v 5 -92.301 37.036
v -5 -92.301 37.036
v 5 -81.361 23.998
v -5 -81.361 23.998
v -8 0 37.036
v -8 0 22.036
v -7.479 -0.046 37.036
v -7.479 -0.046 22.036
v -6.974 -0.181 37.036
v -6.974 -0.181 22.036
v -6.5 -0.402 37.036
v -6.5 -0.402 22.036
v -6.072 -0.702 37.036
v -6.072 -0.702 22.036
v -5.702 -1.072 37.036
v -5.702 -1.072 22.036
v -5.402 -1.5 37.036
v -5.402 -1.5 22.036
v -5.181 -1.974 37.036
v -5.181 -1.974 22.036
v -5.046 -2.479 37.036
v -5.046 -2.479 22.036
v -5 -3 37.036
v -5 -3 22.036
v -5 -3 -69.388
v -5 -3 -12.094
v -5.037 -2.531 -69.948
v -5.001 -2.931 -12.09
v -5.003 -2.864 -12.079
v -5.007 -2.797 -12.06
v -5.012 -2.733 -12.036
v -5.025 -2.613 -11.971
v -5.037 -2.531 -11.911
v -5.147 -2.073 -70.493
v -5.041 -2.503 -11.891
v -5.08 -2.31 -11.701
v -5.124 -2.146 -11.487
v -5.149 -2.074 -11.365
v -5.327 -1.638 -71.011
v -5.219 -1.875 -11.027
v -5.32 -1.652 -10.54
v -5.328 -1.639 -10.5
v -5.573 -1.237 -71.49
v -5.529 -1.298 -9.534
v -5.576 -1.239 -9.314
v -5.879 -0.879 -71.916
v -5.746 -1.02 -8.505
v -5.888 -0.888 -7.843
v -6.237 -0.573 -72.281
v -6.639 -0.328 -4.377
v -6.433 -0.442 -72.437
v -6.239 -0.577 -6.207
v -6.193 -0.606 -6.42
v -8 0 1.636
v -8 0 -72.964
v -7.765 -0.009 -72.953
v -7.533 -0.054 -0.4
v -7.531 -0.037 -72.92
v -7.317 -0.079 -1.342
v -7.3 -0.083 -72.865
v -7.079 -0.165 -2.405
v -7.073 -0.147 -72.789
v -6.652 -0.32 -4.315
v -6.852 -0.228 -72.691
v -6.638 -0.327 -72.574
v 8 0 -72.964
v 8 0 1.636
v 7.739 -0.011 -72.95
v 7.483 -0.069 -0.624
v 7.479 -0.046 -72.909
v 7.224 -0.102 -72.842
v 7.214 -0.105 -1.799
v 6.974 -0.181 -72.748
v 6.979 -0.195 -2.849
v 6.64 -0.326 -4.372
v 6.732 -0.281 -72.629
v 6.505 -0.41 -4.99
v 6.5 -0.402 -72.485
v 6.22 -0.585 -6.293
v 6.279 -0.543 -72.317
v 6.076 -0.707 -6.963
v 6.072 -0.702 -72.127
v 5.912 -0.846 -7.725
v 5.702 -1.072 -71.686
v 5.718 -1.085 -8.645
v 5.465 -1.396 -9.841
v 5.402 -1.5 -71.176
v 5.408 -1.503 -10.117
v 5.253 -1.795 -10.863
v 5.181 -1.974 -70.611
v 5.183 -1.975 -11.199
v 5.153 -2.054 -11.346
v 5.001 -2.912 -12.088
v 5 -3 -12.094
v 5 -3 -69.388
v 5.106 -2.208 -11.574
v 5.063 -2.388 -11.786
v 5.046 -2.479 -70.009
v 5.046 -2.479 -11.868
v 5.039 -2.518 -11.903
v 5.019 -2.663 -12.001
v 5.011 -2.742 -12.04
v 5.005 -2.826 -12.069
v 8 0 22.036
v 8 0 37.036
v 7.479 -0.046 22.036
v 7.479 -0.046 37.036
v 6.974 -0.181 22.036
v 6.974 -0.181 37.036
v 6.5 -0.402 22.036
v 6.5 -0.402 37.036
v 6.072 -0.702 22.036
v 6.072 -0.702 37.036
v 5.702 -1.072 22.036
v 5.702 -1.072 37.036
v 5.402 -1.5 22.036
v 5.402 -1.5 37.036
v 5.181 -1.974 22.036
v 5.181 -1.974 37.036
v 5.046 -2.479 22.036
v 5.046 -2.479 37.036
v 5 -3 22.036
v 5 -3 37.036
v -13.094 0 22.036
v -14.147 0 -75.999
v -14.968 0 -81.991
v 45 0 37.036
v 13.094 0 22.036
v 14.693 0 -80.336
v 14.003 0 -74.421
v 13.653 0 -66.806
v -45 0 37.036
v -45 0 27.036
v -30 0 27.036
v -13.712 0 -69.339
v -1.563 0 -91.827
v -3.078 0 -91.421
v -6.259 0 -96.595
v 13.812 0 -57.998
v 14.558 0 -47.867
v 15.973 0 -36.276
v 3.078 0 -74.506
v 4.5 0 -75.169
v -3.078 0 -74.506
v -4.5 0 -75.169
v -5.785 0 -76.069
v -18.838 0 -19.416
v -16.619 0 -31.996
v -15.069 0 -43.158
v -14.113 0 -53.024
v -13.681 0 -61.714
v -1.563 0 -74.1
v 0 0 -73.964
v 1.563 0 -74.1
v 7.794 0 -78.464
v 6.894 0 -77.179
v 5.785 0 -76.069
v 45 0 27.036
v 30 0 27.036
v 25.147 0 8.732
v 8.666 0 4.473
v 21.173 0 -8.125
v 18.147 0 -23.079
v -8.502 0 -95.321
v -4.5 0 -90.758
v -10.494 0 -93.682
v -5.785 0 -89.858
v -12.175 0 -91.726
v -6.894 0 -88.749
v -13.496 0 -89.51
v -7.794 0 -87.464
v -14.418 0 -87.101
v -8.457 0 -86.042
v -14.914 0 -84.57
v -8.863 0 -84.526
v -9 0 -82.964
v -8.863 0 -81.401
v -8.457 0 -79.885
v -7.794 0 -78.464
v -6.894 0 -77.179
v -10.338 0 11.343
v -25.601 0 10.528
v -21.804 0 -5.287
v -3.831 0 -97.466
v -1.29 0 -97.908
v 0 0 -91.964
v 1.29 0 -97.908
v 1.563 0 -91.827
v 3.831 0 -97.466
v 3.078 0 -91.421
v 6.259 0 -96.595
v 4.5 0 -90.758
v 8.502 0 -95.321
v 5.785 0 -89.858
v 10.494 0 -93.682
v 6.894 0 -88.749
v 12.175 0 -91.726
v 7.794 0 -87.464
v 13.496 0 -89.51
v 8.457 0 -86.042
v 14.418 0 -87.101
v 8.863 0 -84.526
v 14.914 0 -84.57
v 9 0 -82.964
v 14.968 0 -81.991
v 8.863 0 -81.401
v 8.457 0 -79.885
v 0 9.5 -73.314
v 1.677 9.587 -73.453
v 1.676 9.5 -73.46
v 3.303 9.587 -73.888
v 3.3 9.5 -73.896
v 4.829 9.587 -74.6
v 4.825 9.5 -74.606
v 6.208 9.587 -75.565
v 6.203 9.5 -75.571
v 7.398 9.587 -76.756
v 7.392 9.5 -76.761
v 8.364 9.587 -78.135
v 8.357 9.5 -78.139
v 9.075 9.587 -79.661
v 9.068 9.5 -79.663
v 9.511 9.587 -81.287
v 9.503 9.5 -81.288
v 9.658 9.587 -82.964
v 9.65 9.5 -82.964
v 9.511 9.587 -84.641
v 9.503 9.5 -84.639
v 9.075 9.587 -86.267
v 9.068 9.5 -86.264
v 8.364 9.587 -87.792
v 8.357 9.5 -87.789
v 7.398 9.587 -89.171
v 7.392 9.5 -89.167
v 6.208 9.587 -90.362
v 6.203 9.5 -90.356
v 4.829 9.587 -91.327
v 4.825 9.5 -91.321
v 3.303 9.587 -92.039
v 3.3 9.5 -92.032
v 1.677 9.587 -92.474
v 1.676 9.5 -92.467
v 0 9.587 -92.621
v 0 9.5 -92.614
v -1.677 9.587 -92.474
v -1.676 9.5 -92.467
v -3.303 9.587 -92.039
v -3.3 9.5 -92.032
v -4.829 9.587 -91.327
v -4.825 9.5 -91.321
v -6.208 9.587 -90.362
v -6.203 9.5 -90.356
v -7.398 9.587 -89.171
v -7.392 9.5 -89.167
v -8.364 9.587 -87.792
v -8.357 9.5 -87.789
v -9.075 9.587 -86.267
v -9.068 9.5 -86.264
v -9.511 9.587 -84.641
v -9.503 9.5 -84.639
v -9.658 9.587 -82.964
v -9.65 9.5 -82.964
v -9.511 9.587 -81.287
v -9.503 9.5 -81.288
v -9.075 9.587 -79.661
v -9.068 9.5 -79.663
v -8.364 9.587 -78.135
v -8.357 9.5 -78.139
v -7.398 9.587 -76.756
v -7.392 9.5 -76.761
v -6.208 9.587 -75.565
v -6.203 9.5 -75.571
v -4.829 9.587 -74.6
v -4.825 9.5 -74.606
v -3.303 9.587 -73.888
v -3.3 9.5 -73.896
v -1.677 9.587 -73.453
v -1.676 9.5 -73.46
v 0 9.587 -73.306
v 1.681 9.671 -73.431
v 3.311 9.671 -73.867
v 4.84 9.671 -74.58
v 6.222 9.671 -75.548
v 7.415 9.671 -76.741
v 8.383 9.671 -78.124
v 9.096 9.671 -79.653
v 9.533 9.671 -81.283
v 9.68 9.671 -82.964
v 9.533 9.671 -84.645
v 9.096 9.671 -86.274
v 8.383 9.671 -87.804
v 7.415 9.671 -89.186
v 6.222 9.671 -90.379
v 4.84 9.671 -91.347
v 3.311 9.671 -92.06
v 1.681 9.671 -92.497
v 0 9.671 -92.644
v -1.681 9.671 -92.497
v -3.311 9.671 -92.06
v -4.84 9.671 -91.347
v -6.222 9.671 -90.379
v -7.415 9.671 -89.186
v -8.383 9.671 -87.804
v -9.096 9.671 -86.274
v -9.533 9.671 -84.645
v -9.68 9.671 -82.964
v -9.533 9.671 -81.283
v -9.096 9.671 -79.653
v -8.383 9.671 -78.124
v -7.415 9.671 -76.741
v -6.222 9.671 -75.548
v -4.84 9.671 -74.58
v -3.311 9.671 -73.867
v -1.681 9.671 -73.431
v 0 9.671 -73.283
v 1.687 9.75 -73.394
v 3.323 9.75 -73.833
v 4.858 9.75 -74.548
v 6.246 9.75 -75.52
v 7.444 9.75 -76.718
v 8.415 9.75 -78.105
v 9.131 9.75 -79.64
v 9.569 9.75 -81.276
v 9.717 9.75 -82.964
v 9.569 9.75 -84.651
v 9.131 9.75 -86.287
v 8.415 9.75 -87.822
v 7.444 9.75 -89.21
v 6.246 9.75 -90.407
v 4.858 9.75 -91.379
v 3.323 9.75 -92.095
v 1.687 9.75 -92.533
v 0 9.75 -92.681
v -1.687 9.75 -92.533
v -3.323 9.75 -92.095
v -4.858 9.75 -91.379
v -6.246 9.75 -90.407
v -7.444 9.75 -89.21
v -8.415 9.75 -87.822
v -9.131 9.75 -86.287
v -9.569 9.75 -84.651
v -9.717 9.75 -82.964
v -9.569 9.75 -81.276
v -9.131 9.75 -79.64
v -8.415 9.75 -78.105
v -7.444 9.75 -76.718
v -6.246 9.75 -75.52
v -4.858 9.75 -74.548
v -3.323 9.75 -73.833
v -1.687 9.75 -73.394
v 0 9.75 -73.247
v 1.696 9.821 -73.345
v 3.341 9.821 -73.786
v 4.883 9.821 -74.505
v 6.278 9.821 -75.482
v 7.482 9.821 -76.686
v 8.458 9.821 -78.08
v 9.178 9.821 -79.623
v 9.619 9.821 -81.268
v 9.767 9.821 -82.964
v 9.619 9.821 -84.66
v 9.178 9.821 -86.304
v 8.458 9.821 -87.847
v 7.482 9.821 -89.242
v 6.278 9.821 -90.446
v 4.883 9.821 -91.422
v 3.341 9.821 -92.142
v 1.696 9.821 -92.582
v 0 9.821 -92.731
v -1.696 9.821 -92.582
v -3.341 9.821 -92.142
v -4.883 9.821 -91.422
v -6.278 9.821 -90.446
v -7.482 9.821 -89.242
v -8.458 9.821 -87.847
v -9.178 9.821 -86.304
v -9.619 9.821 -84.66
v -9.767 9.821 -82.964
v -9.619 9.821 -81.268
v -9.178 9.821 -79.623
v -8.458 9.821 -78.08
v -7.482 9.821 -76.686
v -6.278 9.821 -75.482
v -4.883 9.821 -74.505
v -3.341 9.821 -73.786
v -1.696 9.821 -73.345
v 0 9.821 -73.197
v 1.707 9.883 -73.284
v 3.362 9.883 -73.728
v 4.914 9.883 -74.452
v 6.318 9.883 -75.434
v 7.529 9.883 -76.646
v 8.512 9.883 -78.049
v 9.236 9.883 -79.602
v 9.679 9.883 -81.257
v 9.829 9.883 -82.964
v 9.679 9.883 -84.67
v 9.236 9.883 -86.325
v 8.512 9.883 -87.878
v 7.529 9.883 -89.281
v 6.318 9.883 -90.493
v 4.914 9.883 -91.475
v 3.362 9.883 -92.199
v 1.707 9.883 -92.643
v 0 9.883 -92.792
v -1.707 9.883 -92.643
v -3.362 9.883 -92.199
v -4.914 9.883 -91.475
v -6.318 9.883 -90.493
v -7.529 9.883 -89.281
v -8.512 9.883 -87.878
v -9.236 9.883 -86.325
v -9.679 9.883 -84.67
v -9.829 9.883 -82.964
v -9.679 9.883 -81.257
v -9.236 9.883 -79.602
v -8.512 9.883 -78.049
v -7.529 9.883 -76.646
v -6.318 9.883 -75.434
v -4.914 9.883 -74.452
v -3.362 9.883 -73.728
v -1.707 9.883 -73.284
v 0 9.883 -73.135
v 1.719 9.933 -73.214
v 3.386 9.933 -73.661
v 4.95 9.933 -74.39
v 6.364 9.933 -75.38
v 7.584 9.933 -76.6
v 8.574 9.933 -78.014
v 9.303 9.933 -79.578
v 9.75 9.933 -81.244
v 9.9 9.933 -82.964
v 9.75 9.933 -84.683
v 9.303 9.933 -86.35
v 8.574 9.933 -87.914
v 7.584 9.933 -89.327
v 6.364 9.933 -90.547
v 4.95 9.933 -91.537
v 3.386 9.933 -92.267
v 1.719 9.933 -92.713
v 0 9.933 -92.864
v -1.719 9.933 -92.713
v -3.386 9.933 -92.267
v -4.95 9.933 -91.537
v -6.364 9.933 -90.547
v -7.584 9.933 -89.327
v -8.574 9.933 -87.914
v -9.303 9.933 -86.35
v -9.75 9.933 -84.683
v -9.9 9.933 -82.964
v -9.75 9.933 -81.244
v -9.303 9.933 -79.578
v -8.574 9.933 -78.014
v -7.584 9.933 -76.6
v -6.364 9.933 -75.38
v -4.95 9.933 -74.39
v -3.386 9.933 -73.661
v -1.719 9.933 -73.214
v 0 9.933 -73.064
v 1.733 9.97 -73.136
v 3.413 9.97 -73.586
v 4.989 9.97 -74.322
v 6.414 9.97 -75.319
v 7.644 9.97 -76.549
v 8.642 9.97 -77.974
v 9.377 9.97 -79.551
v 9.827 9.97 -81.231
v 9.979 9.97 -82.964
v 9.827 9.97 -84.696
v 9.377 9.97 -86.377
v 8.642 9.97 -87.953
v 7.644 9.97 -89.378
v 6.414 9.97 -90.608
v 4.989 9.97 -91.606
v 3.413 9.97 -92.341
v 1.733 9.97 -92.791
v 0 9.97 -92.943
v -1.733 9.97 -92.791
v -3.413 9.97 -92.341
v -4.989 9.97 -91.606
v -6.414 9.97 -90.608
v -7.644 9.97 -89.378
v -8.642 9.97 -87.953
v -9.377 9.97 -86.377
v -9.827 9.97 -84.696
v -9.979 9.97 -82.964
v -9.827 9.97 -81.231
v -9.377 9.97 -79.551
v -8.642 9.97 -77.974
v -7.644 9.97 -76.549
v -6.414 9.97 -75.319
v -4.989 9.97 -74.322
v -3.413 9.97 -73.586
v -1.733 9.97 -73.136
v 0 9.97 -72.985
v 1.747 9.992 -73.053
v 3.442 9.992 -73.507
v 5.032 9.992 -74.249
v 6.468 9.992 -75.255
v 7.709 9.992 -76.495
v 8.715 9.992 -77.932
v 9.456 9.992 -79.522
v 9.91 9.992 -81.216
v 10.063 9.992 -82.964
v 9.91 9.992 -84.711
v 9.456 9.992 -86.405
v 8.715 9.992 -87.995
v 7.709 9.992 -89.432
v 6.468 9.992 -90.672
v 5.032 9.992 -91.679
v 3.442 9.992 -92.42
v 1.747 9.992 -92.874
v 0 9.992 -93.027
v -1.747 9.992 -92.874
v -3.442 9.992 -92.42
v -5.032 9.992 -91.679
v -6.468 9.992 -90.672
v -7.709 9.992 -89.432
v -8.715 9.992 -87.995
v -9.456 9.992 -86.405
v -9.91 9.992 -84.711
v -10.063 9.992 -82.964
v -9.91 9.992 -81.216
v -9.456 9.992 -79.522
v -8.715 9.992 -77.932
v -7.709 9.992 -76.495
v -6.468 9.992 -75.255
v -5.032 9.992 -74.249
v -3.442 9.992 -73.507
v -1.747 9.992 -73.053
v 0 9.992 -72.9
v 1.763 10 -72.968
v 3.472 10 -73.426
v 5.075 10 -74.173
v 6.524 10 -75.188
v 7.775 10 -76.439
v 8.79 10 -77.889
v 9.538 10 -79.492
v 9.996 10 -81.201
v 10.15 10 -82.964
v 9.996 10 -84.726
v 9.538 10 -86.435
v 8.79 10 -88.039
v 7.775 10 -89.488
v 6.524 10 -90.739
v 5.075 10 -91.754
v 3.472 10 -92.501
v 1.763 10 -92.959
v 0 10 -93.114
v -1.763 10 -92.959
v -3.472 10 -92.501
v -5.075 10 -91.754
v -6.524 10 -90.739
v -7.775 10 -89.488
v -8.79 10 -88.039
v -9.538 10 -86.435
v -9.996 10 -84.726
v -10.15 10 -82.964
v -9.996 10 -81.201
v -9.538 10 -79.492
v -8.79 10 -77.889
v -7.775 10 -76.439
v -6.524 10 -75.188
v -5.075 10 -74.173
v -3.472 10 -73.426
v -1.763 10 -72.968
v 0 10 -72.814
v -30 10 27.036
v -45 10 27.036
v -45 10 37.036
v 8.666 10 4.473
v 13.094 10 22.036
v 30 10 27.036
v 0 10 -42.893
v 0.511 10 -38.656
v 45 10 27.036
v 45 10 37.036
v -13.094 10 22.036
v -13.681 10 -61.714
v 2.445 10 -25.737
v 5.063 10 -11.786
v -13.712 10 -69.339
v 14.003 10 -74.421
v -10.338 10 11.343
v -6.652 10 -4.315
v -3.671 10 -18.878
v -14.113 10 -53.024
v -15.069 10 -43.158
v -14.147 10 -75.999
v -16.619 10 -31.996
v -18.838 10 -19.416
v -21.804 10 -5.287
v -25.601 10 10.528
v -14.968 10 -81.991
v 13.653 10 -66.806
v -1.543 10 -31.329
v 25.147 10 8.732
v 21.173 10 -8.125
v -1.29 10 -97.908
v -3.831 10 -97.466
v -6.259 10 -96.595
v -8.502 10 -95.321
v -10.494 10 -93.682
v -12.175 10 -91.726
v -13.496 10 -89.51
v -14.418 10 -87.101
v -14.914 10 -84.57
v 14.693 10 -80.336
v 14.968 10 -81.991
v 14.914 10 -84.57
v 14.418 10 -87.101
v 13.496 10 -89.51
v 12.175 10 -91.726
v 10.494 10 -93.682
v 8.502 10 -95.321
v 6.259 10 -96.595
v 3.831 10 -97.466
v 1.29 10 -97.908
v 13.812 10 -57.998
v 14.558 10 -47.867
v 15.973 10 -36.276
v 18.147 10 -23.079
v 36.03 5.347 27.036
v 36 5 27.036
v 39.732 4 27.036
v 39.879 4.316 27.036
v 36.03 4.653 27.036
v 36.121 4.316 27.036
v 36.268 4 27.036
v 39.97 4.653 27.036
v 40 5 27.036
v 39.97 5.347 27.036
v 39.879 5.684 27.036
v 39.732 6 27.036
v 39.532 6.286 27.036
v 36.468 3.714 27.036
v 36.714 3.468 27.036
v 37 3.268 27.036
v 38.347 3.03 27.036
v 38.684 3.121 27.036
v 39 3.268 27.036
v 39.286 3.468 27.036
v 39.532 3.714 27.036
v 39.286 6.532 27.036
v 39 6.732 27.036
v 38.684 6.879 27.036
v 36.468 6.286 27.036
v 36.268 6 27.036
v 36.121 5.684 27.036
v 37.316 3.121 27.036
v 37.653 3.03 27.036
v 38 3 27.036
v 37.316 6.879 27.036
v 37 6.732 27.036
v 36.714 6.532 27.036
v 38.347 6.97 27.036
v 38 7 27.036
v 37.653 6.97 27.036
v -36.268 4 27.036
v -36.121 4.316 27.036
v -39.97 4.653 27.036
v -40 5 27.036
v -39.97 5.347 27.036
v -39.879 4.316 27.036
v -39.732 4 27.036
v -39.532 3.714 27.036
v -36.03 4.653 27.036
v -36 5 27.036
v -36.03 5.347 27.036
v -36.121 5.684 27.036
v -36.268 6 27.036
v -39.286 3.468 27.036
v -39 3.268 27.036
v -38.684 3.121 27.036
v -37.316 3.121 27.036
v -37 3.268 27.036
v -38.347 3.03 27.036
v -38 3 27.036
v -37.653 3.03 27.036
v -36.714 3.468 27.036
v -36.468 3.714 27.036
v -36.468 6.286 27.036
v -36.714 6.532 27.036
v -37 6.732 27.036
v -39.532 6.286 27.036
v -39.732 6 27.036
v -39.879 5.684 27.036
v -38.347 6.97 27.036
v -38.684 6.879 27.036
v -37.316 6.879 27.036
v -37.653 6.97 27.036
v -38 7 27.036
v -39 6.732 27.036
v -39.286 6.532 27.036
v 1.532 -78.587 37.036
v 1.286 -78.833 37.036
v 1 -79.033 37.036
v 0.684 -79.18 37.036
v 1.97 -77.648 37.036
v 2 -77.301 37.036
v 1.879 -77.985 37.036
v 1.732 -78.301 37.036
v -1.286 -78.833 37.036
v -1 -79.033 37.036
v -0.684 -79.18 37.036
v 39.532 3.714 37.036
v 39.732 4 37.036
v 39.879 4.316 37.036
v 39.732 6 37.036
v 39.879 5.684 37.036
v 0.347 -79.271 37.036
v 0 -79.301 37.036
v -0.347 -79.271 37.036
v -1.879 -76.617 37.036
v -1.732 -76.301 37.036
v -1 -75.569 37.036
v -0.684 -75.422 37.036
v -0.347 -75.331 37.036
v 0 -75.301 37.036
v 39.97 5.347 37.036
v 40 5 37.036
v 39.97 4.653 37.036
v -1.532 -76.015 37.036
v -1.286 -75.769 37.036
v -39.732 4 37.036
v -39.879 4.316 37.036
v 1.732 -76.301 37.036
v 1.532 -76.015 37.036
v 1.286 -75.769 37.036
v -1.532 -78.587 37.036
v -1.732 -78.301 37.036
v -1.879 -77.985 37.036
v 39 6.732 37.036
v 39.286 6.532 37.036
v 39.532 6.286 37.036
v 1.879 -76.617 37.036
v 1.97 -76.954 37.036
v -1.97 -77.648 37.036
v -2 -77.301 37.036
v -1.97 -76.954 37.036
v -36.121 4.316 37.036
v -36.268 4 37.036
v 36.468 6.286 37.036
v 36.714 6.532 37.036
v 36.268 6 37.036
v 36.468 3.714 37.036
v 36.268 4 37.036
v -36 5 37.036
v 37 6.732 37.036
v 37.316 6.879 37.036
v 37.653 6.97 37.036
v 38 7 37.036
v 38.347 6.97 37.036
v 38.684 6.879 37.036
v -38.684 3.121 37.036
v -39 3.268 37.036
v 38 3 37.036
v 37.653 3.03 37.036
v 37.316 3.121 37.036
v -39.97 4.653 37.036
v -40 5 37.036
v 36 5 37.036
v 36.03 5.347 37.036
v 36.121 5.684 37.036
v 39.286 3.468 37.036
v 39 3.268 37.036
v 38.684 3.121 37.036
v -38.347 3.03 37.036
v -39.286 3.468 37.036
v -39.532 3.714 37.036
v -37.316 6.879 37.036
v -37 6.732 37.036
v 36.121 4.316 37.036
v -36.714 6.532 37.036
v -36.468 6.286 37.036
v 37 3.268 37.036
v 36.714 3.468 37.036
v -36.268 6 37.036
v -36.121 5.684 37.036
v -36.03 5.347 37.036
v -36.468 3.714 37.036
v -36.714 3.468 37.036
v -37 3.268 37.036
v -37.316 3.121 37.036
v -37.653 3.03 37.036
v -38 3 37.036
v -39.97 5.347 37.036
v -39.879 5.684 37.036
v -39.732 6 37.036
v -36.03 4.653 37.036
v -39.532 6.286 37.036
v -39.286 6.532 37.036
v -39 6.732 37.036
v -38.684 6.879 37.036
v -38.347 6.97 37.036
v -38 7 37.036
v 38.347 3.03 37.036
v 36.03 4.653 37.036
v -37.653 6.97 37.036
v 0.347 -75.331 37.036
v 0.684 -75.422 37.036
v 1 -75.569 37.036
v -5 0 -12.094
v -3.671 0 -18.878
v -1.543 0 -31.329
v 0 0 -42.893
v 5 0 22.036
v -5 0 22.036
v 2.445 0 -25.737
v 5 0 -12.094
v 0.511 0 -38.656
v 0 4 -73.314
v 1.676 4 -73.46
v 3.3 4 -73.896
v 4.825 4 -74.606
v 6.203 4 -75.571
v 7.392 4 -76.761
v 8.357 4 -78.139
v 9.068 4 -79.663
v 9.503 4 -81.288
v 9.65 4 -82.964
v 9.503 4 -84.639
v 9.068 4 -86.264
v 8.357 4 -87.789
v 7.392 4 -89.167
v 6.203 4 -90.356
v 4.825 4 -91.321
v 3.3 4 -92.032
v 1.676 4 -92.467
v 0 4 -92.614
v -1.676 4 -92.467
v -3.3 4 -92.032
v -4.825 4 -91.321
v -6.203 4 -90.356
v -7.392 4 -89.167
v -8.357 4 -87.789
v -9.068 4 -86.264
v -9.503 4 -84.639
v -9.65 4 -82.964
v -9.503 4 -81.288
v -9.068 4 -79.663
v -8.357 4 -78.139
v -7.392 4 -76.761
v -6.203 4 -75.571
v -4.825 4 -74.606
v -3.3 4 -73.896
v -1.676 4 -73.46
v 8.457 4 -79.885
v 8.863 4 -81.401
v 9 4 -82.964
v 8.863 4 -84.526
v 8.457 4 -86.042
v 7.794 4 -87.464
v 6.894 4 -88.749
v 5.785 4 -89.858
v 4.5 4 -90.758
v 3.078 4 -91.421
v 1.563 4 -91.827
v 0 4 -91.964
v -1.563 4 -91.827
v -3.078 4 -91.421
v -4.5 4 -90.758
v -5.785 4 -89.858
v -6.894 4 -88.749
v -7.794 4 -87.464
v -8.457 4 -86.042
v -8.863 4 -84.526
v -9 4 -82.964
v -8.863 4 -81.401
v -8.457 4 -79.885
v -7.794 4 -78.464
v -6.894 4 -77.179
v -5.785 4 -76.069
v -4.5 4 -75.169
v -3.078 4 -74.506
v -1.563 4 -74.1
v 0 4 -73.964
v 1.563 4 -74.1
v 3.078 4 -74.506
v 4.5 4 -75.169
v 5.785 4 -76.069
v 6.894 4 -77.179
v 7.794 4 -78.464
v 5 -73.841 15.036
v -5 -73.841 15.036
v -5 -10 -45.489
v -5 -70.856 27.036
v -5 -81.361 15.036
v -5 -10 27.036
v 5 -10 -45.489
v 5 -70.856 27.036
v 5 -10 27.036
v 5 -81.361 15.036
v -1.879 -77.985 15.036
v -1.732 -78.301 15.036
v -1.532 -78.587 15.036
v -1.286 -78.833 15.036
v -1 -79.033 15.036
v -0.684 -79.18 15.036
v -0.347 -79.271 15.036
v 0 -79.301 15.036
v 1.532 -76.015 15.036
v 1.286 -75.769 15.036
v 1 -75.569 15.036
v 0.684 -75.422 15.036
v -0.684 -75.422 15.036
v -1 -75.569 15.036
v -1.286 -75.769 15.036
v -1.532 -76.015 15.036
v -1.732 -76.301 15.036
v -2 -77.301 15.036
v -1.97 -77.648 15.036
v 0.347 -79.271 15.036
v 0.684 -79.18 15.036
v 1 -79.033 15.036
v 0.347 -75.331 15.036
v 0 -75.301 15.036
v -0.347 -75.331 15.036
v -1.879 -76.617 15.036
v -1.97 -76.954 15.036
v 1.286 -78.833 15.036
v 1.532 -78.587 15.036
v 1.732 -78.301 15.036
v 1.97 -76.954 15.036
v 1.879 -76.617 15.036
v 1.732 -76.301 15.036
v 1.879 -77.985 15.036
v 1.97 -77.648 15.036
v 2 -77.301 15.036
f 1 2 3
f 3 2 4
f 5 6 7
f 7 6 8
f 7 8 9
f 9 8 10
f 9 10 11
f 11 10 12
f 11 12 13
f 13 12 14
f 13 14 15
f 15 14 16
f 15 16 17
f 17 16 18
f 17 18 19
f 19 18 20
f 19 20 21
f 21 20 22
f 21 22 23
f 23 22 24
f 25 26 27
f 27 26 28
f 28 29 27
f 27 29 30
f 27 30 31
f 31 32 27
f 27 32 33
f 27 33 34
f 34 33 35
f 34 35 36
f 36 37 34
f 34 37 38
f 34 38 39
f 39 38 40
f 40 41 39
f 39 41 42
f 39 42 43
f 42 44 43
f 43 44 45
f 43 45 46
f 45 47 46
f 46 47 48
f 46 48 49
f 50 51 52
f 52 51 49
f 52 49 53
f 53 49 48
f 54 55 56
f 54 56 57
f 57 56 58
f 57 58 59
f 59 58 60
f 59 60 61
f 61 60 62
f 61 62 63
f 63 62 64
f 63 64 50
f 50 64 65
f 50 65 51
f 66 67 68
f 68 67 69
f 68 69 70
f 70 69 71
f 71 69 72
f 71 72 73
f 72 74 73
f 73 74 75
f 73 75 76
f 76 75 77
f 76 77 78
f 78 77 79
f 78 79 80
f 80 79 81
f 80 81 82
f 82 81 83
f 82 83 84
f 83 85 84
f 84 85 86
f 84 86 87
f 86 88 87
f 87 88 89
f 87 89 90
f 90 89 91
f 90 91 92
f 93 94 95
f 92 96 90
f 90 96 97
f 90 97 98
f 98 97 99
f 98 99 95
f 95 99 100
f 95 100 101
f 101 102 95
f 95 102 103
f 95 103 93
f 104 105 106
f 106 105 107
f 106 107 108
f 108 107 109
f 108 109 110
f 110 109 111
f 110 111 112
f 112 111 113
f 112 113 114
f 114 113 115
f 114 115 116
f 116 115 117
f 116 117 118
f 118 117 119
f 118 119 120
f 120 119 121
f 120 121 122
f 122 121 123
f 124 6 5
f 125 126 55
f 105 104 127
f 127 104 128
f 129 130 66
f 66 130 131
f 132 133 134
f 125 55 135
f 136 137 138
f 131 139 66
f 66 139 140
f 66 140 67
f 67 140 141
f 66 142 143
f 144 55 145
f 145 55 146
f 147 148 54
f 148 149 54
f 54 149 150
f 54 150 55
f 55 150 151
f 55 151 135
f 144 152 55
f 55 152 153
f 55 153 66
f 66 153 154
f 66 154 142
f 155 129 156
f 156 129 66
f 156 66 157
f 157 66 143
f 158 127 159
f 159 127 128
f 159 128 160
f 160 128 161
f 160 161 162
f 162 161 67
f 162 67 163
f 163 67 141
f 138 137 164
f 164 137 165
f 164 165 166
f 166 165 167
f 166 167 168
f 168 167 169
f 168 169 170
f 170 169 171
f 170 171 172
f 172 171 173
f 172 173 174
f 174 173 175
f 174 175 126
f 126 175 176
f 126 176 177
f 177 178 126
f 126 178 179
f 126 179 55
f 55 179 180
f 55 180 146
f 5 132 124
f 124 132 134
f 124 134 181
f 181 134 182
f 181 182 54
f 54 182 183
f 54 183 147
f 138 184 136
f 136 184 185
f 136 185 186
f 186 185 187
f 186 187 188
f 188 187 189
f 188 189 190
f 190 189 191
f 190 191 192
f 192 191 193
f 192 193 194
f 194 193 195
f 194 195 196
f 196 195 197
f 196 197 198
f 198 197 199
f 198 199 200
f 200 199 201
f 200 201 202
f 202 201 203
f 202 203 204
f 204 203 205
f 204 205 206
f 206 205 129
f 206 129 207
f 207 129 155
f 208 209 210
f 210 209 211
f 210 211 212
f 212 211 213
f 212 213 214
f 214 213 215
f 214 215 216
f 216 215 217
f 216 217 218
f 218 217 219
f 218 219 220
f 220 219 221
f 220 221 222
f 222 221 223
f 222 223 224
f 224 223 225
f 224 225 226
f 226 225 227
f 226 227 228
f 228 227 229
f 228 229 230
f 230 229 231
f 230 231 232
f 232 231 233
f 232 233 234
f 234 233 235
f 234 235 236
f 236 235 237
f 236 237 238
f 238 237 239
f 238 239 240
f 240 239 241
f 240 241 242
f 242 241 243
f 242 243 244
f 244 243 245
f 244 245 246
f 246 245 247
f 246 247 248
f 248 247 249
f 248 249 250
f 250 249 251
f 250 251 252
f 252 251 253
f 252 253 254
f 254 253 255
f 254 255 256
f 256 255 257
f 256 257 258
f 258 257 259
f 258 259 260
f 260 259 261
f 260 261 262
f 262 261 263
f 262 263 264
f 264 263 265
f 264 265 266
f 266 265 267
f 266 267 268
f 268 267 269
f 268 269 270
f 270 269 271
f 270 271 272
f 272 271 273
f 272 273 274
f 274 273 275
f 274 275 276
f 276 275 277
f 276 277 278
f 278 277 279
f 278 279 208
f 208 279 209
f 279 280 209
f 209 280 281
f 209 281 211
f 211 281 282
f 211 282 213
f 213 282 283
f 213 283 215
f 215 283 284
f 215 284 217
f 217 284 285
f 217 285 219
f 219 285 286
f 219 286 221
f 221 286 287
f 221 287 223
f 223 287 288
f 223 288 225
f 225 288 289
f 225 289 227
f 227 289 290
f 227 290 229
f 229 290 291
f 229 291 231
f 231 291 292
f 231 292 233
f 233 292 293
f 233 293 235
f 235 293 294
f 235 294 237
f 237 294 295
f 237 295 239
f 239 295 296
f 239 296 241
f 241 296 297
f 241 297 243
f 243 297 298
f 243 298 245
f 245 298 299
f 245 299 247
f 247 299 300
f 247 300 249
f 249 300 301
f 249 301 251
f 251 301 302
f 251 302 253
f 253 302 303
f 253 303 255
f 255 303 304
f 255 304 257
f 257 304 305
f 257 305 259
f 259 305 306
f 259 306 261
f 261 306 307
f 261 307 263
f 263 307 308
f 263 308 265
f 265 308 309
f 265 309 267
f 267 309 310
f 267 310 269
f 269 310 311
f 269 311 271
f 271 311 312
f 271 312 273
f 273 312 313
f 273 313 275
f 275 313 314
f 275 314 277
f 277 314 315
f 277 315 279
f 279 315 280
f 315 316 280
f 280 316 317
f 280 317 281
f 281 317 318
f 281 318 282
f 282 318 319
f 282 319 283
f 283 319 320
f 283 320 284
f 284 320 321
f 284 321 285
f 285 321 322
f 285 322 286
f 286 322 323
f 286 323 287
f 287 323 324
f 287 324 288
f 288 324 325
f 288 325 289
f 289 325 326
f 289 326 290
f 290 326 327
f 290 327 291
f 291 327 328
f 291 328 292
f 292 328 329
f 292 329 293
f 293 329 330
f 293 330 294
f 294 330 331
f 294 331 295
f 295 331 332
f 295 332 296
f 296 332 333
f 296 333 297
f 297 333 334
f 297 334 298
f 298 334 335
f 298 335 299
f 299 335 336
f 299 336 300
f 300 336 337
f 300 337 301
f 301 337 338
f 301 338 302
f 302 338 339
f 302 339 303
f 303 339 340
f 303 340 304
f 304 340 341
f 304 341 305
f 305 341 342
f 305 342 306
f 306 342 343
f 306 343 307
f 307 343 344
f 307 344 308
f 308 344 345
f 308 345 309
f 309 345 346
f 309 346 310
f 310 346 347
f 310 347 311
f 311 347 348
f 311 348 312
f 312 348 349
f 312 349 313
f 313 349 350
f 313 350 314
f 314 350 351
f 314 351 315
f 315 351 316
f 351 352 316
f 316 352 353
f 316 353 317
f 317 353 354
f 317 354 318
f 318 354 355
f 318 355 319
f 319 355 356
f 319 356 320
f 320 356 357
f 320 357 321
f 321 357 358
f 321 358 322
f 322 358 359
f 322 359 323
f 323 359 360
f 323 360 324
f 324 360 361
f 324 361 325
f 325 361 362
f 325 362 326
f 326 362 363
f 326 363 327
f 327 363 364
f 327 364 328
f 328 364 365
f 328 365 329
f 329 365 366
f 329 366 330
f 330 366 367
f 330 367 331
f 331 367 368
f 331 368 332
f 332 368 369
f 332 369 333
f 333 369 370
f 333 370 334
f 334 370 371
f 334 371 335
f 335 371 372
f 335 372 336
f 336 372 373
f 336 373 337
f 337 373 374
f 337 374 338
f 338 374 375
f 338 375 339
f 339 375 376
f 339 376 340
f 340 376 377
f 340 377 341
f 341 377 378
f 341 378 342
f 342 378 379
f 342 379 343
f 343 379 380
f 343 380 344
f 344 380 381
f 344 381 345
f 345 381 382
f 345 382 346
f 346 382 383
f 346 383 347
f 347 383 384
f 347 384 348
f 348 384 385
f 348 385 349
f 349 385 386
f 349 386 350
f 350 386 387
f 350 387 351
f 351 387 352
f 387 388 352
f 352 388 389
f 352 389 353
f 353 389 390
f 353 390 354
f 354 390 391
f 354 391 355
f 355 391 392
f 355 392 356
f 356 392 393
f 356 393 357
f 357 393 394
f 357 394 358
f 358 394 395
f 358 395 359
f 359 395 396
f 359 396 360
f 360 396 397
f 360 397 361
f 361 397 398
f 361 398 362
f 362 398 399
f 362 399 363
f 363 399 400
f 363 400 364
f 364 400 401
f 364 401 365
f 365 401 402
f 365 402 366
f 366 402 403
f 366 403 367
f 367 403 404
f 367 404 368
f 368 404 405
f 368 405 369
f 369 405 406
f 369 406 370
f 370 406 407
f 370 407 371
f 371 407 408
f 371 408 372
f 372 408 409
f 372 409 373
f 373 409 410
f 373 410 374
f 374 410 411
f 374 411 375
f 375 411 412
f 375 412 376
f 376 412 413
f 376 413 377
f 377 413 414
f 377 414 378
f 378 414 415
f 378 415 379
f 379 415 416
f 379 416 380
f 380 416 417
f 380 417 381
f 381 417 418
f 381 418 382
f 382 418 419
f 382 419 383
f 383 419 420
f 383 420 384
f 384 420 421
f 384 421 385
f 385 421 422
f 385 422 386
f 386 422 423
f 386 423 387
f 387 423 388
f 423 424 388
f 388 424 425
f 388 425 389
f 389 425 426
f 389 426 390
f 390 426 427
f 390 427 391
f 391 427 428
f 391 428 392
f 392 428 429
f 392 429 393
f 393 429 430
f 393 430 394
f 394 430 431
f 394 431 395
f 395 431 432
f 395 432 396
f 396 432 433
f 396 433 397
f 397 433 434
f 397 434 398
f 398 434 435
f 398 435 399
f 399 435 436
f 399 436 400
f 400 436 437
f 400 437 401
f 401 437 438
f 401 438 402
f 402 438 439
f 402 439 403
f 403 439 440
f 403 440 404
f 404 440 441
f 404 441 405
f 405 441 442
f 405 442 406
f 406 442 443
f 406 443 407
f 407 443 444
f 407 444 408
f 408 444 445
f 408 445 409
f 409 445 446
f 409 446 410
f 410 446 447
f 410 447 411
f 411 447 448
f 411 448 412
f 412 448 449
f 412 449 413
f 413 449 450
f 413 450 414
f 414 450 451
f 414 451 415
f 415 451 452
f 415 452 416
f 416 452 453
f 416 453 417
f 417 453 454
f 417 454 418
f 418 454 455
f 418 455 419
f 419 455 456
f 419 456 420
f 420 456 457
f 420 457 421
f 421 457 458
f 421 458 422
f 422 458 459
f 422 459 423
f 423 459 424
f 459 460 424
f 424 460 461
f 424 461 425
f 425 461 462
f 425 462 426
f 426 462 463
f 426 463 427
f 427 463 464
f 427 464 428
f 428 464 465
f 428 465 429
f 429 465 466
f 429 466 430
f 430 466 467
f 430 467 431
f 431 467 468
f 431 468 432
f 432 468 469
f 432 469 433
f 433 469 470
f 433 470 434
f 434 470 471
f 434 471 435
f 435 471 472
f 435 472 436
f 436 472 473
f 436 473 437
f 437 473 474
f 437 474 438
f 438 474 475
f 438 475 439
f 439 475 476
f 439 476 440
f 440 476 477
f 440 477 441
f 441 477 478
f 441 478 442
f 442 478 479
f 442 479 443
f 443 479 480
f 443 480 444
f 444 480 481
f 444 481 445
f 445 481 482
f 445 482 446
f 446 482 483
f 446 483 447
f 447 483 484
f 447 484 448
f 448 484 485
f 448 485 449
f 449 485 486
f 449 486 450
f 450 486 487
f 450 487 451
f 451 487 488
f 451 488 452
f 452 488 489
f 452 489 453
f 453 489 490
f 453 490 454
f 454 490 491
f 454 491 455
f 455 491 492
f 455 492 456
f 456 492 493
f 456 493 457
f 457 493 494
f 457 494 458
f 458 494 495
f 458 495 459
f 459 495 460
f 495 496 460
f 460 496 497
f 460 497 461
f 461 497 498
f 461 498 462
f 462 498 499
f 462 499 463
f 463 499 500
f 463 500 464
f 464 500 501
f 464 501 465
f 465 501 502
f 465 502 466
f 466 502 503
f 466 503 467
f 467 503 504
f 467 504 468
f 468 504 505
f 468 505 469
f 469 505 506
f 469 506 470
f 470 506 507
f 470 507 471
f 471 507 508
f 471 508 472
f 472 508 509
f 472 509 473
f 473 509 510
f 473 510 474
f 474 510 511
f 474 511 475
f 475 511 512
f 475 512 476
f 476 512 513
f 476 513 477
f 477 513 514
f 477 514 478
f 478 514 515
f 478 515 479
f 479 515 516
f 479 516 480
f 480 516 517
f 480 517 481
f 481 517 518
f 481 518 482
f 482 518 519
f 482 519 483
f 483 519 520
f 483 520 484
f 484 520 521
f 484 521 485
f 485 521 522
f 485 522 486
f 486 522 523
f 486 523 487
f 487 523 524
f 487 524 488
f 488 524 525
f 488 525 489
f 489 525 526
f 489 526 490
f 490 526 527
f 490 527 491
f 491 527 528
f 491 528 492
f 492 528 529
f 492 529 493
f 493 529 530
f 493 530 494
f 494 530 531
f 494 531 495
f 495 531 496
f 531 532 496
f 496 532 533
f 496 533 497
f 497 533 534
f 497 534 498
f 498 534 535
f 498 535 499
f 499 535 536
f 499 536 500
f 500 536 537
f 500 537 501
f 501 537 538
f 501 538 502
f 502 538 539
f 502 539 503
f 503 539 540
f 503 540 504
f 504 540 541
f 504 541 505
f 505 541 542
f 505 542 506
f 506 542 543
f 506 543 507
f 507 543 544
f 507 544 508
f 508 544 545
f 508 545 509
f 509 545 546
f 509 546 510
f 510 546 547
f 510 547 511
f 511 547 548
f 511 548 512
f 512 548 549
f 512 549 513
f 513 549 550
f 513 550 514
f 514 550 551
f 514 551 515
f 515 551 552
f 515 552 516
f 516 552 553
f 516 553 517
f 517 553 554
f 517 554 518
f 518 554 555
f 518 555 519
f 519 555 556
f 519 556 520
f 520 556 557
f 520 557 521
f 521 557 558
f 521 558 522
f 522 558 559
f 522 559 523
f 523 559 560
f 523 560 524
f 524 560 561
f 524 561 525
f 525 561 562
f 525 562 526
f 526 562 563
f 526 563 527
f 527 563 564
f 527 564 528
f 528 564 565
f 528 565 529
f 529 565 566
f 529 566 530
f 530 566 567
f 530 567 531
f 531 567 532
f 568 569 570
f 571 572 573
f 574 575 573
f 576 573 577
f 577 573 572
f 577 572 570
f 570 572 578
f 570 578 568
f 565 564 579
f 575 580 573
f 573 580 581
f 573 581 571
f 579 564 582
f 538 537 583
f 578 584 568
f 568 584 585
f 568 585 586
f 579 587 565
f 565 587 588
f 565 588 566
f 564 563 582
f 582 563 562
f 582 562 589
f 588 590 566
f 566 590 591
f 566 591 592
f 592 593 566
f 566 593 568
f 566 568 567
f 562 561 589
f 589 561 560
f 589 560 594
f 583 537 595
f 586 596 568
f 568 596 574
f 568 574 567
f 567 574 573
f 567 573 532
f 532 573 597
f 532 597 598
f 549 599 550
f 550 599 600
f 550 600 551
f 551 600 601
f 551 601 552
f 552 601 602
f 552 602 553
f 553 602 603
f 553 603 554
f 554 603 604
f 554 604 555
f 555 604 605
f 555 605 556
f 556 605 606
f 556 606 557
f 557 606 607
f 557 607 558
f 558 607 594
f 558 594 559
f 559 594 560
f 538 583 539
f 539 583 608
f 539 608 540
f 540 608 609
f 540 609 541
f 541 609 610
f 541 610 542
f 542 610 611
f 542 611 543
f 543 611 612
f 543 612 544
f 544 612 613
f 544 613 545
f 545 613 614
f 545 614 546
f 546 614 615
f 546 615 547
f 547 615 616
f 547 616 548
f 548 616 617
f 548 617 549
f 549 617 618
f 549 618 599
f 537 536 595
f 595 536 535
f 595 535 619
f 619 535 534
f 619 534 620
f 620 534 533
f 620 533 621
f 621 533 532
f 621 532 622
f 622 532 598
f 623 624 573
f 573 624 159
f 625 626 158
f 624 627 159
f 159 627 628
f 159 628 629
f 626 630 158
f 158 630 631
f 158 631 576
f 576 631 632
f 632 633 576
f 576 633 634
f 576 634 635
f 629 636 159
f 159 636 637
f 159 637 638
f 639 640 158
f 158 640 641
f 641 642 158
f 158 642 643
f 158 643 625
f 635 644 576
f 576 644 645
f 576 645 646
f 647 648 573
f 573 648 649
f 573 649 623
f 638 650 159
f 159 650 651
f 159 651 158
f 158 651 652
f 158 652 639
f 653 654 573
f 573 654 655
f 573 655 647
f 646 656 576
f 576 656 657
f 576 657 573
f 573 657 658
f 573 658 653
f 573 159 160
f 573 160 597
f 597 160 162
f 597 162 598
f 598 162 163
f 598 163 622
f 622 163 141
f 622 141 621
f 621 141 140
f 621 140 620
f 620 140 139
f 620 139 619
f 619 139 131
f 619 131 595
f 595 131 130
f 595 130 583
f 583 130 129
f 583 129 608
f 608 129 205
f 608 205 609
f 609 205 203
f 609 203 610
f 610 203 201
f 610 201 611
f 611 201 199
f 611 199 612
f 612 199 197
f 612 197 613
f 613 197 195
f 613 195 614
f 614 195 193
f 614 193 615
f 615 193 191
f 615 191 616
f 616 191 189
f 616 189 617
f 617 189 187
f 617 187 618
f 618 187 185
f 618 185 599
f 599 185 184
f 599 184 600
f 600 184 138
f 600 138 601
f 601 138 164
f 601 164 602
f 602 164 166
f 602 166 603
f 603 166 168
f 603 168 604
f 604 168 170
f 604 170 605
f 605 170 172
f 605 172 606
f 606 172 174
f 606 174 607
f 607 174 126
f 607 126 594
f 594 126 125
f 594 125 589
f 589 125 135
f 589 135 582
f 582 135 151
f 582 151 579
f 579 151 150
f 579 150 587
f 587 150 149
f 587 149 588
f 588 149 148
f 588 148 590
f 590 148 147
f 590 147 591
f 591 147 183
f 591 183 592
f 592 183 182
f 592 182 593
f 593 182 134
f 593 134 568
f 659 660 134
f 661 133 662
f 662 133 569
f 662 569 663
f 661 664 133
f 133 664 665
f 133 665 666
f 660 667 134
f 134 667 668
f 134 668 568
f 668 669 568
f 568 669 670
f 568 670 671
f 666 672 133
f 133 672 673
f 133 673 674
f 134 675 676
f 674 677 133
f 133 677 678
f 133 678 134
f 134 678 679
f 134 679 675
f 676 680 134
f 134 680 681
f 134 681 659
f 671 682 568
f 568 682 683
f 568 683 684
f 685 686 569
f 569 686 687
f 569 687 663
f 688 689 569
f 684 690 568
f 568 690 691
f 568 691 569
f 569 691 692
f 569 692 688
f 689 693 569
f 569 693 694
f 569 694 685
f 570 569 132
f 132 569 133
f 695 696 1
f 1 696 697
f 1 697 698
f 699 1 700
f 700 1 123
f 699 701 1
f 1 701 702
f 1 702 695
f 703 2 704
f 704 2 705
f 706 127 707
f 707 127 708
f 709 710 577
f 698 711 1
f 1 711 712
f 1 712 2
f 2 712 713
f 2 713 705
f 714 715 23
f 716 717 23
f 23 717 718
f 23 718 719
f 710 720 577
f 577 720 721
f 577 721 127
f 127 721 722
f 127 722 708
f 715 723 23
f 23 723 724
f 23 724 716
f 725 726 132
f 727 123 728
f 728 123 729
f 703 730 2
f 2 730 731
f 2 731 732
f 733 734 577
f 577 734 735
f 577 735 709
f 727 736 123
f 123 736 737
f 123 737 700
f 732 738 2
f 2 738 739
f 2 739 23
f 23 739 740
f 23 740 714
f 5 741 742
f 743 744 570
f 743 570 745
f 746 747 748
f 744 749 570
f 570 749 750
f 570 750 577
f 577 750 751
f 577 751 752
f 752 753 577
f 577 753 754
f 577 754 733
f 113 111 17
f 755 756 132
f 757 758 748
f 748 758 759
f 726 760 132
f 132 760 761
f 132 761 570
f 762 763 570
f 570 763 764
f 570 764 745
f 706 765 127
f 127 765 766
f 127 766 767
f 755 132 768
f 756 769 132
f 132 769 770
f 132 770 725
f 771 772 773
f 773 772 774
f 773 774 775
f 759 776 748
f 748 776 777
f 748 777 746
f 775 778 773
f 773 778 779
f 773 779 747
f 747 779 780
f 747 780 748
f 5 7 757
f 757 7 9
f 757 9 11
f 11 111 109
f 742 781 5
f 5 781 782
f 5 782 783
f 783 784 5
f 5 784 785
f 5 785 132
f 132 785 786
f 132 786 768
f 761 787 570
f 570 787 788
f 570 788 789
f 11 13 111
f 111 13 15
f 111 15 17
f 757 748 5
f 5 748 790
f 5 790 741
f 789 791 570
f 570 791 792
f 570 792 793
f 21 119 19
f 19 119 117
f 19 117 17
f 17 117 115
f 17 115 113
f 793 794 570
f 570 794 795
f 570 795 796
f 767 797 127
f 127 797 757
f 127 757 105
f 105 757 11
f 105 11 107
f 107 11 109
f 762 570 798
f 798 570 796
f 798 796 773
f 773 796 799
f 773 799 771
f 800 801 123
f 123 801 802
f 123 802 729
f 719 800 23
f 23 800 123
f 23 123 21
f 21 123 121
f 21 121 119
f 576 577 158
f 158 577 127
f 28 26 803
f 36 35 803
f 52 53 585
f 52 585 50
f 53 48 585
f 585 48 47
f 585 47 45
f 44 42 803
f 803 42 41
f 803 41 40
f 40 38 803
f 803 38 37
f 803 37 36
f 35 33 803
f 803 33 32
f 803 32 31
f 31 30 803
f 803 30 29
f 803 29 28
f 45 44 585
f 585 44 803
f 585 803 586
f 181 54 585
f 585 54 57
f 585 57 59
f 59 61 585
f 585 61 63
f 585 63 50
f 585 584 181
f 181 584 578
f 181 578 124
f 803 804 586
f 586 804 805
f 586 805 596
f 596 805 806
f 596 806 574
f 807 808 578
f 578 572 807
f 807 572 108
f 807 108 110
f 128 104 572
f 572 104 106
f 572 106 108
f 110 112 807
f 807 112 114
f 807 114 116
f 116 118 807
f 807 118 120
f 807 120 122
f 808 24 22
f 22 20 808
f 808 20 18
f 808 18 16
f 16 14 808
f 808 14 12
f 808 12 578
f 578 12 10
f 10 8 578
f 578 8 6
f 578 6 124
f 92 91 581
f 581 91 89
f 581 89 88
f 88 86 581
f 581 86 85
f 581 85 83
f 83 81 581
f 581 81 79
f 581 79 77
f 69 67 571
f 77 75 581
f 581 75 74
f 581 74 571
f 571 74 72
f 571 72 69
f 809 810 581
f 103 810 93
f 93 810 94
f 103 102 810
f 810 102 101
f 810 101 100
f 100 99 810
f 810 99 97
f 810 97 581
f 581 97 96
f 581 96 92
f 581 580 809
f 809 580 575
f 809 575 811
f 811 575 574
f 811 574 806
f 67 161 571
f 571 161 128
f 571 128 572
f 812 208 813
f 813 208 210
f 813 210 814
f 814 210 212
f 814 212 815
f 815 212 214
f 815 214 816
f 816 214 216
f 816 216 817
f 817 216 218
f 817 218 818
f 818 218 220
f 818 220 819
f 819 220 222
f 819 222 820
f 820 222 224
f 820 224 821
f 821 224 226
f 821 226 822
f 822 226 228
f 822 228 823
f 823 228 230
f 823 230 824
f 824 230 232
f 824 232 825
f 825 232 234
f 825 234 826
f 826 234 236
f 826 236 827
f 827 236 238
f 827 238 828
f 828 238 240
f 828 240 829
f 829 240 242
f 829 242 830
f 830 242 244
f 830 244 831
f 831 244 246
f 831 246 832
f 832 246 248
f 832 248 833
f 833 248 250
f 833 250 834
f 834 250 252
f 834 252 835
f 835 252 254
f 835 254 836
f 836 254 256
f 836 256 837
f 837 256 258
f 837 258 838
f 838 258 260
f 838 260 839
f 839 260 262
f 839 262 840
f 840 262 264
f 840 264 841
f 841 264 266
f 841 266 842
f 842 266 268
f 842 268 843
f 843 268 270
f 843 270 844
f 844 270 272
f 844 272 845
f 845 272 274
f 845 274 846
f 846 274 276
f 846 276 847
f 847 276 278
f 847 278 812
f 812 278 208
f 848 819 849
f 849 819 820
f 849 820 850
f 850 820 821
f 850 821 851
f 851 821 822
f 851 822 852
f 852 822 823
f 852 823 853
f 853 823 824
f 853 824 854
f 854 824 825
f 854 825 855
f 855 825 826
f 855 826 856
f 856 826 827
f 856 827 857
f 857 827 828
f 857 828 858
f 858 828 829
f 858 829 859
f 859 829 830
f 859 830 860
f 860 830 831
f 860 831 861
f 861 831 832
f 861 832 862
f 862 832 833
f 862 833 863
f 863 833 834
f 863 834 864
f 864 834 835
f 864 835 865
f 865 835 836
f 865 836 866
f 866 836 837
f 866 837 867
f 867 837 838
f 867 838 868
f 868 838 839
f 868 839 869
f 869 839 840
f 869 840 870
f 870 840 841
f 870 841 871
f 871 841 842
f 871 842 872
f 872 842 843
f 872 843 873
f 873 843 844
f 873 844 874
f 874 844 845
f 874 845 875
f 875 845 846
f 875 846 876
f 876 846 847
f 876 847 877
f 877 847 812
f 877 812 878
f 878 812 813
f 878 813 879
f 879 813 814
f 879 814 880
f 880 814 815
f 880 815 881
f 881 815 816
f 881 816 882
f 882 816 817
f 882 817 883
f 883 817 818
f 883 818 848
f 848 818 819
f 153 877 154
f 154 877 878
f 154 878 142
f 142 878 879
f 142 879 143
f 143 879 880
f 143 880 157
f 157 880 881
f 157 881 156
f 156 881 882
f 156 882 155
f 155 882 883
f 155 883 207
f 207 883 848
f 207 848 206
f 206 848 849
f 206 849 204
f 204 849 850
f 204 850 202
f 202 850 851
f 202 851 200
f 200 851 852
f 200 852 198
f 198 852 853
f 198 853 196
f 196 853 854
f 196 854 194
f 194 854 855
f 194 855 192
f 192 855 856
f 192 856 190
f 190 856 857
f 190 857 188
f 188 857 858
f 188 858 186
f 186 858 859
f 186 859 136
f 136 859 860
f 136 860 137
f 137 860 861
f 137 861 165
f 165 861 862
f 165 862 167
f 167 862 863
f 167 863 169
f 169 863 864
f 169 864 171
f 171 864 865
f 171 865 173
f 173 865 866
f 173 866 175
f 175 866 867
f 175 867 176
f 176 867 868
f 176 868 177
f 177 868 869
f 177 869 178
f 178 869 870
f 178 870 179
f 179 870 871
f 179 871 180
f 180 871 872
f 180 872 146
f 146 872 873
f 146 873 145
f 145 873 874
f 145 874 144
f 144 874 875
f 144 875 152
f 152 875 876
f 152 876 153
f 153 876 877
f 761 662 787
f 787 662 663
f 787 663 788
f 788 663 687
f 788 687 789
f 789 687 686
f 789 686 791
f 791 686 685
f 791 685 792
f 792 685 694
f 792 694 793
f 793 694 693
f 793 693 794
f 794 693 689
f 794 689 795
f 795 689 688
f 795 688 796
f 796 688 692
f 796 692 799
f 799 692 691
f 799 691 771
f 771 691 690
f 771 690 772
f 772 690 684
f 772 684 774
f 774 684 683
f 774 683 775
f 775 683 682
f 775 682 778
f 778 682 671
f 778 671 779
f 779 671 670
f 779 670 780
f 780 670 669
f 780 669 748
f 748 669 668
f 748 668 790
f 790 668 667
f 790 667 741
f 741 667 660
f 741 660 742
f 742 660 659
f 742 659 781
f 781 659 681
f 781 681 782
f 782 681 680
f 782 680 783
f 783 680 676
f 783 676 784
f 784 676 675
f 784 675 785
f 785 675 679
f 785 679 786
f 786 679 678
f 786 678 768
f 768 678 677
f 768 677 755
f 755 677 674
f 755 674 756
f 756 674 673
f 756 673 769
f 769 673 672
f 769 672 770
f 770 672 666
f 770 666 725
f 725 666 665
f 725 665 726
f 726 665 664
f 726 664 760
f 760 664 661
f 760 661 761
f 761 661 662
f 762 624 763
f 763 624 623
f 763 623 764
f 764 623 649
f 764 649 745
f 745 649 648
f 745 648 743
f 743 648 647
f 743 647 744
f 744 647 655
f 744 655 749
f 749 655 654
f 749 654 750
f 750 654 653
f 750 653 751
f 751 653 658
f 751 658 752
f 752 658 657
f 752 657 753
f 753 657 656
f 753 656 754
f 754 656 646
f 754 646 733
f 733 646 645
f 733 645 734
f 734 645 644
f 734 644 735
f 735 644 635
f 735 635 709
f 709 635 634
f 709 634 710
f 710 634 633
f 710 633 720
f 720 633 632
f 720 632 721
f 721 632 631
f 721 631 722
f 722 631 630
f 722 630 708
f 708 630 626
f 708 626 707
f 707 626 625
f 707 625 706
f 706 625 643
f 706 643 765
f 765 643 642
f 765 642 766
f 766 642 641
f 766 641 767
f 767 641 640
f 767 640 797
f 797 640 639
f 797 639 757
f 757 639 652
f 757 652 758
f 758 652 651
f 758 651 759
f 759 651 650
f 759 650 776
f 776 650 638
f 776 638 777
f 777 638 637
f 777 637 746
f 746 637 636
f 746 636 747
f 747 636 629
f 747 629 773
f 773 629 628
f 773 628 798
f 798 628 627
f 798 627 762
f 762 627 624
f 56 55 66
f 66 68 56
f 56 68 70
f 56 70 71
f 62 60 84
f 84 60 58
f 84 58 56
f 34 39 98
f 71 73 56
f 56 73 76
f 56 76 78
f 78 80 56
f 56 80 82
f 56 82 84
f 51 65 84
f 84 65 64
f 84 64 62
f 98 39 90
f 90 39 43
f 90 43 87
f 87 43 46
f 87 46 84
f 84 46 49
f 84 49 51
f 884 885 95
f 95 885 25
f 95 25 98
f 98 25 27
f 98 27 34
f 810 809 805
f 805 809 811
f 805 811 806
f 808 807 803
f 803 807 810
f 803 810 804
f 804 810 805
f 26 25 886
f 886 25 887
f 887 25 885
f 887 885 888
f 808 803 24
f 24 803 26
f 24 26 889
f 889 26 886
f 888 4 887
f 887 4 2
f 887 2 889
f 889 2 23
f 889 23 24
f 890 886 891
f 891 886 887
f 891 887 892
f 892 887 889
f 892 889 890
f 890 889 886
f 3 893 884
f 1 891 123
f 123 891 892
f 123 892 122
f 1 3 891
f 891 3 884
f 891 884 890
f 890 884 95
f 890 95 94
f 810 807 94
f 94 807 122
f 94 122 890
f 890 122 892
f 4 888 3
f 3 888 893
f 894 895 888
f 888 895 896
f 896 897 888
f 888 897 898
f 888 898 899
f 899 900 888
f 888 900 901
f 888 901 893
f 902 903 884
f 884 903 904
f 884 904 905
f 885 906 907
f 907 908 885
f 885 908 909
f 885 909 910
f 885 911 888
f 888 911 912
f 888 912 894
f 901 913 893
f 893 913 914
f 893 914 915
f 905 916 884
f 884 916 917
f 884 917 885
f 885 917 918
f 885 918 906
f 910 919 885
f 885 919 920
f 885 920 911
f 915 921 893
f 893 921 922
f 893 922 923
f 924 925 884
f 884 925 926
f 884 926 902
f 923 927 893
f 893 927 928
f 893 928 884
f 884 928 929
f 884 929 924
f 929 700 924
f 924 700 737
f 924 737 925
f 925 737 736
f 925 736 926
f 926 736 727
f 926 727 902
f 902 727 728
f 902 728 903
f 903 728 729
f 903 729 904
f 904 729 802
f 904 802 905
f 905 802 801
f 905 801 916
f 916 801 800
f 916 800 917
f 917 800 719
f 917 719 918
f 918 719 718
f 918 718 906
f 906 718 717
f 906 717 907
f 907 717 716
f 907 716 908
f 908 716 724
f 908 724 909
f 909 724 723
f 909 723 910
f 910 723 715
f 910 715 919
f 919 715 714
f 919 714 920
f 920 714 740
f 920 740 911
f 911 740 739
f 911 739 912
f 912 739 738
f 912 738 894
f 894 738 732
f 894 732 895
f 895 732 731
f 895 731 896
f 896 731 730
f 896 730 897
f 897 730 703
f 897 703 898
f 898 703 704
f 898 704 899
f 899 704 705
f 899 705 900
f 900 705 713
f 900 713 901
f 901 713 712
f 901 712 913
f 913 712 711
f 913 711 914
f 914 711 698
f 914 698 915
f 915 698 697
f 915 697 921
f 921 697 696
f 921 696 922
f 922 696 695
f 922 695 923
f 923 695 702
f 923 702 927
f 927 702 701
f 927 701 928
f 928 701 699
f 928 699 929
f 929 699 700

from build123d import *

# Parameters (mm, degrees)
EXTRUDE_1_DEPTH      = 10
SKETCH_2_R           = 9.65
CUT_EXTRUDE_1_DEPTH  = 6
SKETCH_3_R           = 9
CUT_EXTRUDE_2_DEPTH  = 108.971611223
SKETCH_4_R           = 2
CUT_EXTRUDE_3_DEPTH  = 134.22912608
FILLET_2_R           = 0.5
EXTRUDE_3_DEPTH      = 5
EXTRUDE_3_DEPTH_BACK = 5
FILLET_3_R           = 3
FILLET_4_R           = 3
FILLET_5_R           = 3
FILLET_6_R           = 3
SKETCH_8_W           = 10
SKETCH_8_H           = 8.119253015
EXTRUDE_5_DEPTH      = 22
SKETCH_7_R           = 2
CUT_EXTRUDE_4_DEPTH  = 170.615645405


with BuildPart() as part:
    # Эскиз1 → Бобышка-Вытянуть1 (new body)
    with BuildSketch(Plane(origin=(0, 0, 0), x_dir=(1, 0, 0), z_dir=(0, 1, 0))):
        with BuildLine():
            Line((-45, -37.036390428), (45, -37.036390428))
            Line((45, -37.036390428), (45, -27.036390428))
            Line((45, -27.036390428), (30, -27.036390428))
            add(Edge.make_bspline(
                [(30, -27.036390428), (8.982189831, 48.482679734), (14.96841635, 81.990721102)],
                knots=[0, 0, 0, 0.673052388, 0.673052388, 0.673052388], degree=2))
            ThreePointArc((14.96841635, 81.990721102), (0, 97.963609572), (-14.96841635, 81.990721102))
            add(Edge.make_bspline(
                [(-30, -27.036390428), (-8.982189831, 48.482679734), (-14.96841635, 81.990721102)],
                knots=[0, 0, 0, 0.673052388, 0.673052388, 0.673052388], degree=2))
            Line((-30, -27.036390428), (-45, -27.036390428))
            Line((-45, -27.036390428), (-45, -37.036390428))
        make_face()
        with BuildLine():
            Line((-13.093802095, -22.036390428), (13.093802095, -22.036390428))
            add(Edge.make_bspline(
                [(0, 42.892969081), (0.131197091, 41.727442037), (0.406798356, 39.416984329), (1.035729687, 34.652549779), (1.955297059, 28.529668977), (3.27425138, 20.876880517), (4.806507266, 12.923420182), (6.551708297, 4.662649881), (8.508532438, -3.905250597), (10.317434597, -11.311565536), (11.866516335, -17.379327452), (12.683259953, -20.491905055), (13.093802095, -22.036390428)],
                knots=[0.040117253, 0.040117253, 0.040117253, 0.040117253, 0.061247944, 0.082378635, 0.124640016, 0.166901397, 0.209162778, 0.251424159, 0.29368554, 0.335946921, 0.357077612, 0.378208302, 0.378208302, 0.378208302, 0.378208302], degree=3))
            add(Edge.make_bspline(
                [(-13.093802095, -22.036390428), (-12.683259953, -20.491905055), (-11.866516335, -17.379327452), (-10.317434597, -11.311565536), (-8.508532438, -3.905250597), (-6.551708297, 4.662649881), (-4.806507266, 12.923420182), (-3.27425138, 20.876880517), (-1.955297059, 28.529668977), (-1.035729687, 34.652549779), (-0.406798356, 39.416984329), (-0.131197091, 41.727442037), (0, 42.892969081)],
                knots=[0.040117253, 0.040117253, 0.040117253, 0.040117253, 0.061247944, 0.082378635, 0.124640016, 0.166901397, 0.209162778, 0.251424159, 0.29368554, 0.335946921, 0.357077612, 0.378208302, 0.378208302, 0.378208302, 0.378208302], degree=3))
        make_face(mode=Mode.SUBTRACT)
    extrude(amount=EXTRUDE_1_DEPTH)

    # Эскиз2 → Вырез-Вытянуть1 (cut)
    with BuildSketch(Plane(origin=(0, 10, 0), x_dir=(1, 0, 0), z_dir=(0, 1, 0))):
        with Locations(Location((0, 82.963609572, 0), (0, 0, 270))):
            Circle(SKETCH_2_R)
    extrude(amount=-CUT_EXTRUDE_1_DEPTH, mode=Mode.SUBTRACT)

    # Эскиз3 → Вырез-Вытянуть2 (cut, through all)
    with BuildSketch(Plane(origin=(0, 4, 0), x_dir=(1, 0, 0), z_dir=(0, 1, 0))):
        with Locations(Location((0, 82.963609572, 0), (0, 0, 270))):
            Circle(SKETCH_3_R)
    extrude(amount=-CUT_EXTRUDE_2_DEPTH, mode=Mode.SUBTRACT)

    # Эскиз4 → Вырез-Вытянуть3 (cut, through all)
    with BuildSketch(Plane(origin=(0, 0, 27.036390428), x_dir=(-1, 0, 0), z_dir=(0, 0, -1))):
        with Locations((38, 5)):
            Circle(SKETCH_4_R)
        with Locations((-38, 5)):
            Circle(SKETCH_4_R)
    extrude(amount=-CUT_EXTRUDE_3_DEPTH, mode=Mode.SUBTRACT)

    # Скругление2
    fillet_2_edges = [part.edges().sort_by_distance(p)[0] for p in [
        (0, 10, -92.613609572),
    ]]
    fillet(fillet_2_edges, radius=FILLET_2_R)

    # Эскиз6 → Бобышка-Вытянуть3 (add, two sides)
    with BuildSketch(Plane(origin=(0, 0, 0), x_dir=(0, 0, -1), z_dir=(1, 0, 0))) as extrude_3_sk:
        Polygon((72.963609572, 0), (-37.036390428, 0), (-37.036390428, -92.300959429), align=None)
        Polygon((45.488835377, -10), (-27.036390428, -10), (-27.036390428, -70.855890224), align=None, mode=Mode.SUBTRACT)
    extrude(amount=EXTRUDE_3_DEPTH)
    extrude(extrude_3_sk.sketch, amount=-EXTRUDE_3_DEPTH_BACK)

    # Скругление3
    fillet_3_edges = [part.edges().sort_by_distance(p)[0] for p in [
        (5, 0, 29.536390428),
    ]]
    fillet(fillet_3_edges, radius=FILLET_3_R)

    # Скругление4
    fillet_4_edges = [part.edges().sort_by_distance(p)[0] for p in [
        (5, 0, -42.52878468),
    ]]
    fillet(fillet_4_edges, radius=FILLET_4_R)

    # Скругление5
    fillet_5_edges = [part.edges().sort_by_distance(p)[0] for p in [
        (-5, 0, -42.52878468),
    ]]
    fillet(fillet_5_edges, radius=FILLET_5_R)

    # Скругление6
    fillet_6_edges = [part.edges().sort_by_distance(p)[0] for p in [
        (-5, 0, 29.536390428),
    ]]
    fillet(fillet_6_edges, radius=FILLET_6_R)

    # Эскиз8 → Бобышка-Вытянуть5 (add)
    with BuildSketch(Plane.XY.offset(37.036390428)):
        with Locations((0, -77.30095943)):
            Rectangle(SKETCH_8_W, SKETCH_8_H)
    extrude(amount=-EXTRUDE_5_DEPTH)

    # Эскиз7 → Вырез-Вытянуть4 (cut, through all)
    with BuildSketch(Plane.XY.offset(37.036390428)):
        with Locations((0, -77.300959429)):
            Circle(SKETCH_7_R)
    extrude(amount=-CUT_EXTRUDE_4_DEPTH, mode=Mode.SUBTRACT)


solid = part.part
